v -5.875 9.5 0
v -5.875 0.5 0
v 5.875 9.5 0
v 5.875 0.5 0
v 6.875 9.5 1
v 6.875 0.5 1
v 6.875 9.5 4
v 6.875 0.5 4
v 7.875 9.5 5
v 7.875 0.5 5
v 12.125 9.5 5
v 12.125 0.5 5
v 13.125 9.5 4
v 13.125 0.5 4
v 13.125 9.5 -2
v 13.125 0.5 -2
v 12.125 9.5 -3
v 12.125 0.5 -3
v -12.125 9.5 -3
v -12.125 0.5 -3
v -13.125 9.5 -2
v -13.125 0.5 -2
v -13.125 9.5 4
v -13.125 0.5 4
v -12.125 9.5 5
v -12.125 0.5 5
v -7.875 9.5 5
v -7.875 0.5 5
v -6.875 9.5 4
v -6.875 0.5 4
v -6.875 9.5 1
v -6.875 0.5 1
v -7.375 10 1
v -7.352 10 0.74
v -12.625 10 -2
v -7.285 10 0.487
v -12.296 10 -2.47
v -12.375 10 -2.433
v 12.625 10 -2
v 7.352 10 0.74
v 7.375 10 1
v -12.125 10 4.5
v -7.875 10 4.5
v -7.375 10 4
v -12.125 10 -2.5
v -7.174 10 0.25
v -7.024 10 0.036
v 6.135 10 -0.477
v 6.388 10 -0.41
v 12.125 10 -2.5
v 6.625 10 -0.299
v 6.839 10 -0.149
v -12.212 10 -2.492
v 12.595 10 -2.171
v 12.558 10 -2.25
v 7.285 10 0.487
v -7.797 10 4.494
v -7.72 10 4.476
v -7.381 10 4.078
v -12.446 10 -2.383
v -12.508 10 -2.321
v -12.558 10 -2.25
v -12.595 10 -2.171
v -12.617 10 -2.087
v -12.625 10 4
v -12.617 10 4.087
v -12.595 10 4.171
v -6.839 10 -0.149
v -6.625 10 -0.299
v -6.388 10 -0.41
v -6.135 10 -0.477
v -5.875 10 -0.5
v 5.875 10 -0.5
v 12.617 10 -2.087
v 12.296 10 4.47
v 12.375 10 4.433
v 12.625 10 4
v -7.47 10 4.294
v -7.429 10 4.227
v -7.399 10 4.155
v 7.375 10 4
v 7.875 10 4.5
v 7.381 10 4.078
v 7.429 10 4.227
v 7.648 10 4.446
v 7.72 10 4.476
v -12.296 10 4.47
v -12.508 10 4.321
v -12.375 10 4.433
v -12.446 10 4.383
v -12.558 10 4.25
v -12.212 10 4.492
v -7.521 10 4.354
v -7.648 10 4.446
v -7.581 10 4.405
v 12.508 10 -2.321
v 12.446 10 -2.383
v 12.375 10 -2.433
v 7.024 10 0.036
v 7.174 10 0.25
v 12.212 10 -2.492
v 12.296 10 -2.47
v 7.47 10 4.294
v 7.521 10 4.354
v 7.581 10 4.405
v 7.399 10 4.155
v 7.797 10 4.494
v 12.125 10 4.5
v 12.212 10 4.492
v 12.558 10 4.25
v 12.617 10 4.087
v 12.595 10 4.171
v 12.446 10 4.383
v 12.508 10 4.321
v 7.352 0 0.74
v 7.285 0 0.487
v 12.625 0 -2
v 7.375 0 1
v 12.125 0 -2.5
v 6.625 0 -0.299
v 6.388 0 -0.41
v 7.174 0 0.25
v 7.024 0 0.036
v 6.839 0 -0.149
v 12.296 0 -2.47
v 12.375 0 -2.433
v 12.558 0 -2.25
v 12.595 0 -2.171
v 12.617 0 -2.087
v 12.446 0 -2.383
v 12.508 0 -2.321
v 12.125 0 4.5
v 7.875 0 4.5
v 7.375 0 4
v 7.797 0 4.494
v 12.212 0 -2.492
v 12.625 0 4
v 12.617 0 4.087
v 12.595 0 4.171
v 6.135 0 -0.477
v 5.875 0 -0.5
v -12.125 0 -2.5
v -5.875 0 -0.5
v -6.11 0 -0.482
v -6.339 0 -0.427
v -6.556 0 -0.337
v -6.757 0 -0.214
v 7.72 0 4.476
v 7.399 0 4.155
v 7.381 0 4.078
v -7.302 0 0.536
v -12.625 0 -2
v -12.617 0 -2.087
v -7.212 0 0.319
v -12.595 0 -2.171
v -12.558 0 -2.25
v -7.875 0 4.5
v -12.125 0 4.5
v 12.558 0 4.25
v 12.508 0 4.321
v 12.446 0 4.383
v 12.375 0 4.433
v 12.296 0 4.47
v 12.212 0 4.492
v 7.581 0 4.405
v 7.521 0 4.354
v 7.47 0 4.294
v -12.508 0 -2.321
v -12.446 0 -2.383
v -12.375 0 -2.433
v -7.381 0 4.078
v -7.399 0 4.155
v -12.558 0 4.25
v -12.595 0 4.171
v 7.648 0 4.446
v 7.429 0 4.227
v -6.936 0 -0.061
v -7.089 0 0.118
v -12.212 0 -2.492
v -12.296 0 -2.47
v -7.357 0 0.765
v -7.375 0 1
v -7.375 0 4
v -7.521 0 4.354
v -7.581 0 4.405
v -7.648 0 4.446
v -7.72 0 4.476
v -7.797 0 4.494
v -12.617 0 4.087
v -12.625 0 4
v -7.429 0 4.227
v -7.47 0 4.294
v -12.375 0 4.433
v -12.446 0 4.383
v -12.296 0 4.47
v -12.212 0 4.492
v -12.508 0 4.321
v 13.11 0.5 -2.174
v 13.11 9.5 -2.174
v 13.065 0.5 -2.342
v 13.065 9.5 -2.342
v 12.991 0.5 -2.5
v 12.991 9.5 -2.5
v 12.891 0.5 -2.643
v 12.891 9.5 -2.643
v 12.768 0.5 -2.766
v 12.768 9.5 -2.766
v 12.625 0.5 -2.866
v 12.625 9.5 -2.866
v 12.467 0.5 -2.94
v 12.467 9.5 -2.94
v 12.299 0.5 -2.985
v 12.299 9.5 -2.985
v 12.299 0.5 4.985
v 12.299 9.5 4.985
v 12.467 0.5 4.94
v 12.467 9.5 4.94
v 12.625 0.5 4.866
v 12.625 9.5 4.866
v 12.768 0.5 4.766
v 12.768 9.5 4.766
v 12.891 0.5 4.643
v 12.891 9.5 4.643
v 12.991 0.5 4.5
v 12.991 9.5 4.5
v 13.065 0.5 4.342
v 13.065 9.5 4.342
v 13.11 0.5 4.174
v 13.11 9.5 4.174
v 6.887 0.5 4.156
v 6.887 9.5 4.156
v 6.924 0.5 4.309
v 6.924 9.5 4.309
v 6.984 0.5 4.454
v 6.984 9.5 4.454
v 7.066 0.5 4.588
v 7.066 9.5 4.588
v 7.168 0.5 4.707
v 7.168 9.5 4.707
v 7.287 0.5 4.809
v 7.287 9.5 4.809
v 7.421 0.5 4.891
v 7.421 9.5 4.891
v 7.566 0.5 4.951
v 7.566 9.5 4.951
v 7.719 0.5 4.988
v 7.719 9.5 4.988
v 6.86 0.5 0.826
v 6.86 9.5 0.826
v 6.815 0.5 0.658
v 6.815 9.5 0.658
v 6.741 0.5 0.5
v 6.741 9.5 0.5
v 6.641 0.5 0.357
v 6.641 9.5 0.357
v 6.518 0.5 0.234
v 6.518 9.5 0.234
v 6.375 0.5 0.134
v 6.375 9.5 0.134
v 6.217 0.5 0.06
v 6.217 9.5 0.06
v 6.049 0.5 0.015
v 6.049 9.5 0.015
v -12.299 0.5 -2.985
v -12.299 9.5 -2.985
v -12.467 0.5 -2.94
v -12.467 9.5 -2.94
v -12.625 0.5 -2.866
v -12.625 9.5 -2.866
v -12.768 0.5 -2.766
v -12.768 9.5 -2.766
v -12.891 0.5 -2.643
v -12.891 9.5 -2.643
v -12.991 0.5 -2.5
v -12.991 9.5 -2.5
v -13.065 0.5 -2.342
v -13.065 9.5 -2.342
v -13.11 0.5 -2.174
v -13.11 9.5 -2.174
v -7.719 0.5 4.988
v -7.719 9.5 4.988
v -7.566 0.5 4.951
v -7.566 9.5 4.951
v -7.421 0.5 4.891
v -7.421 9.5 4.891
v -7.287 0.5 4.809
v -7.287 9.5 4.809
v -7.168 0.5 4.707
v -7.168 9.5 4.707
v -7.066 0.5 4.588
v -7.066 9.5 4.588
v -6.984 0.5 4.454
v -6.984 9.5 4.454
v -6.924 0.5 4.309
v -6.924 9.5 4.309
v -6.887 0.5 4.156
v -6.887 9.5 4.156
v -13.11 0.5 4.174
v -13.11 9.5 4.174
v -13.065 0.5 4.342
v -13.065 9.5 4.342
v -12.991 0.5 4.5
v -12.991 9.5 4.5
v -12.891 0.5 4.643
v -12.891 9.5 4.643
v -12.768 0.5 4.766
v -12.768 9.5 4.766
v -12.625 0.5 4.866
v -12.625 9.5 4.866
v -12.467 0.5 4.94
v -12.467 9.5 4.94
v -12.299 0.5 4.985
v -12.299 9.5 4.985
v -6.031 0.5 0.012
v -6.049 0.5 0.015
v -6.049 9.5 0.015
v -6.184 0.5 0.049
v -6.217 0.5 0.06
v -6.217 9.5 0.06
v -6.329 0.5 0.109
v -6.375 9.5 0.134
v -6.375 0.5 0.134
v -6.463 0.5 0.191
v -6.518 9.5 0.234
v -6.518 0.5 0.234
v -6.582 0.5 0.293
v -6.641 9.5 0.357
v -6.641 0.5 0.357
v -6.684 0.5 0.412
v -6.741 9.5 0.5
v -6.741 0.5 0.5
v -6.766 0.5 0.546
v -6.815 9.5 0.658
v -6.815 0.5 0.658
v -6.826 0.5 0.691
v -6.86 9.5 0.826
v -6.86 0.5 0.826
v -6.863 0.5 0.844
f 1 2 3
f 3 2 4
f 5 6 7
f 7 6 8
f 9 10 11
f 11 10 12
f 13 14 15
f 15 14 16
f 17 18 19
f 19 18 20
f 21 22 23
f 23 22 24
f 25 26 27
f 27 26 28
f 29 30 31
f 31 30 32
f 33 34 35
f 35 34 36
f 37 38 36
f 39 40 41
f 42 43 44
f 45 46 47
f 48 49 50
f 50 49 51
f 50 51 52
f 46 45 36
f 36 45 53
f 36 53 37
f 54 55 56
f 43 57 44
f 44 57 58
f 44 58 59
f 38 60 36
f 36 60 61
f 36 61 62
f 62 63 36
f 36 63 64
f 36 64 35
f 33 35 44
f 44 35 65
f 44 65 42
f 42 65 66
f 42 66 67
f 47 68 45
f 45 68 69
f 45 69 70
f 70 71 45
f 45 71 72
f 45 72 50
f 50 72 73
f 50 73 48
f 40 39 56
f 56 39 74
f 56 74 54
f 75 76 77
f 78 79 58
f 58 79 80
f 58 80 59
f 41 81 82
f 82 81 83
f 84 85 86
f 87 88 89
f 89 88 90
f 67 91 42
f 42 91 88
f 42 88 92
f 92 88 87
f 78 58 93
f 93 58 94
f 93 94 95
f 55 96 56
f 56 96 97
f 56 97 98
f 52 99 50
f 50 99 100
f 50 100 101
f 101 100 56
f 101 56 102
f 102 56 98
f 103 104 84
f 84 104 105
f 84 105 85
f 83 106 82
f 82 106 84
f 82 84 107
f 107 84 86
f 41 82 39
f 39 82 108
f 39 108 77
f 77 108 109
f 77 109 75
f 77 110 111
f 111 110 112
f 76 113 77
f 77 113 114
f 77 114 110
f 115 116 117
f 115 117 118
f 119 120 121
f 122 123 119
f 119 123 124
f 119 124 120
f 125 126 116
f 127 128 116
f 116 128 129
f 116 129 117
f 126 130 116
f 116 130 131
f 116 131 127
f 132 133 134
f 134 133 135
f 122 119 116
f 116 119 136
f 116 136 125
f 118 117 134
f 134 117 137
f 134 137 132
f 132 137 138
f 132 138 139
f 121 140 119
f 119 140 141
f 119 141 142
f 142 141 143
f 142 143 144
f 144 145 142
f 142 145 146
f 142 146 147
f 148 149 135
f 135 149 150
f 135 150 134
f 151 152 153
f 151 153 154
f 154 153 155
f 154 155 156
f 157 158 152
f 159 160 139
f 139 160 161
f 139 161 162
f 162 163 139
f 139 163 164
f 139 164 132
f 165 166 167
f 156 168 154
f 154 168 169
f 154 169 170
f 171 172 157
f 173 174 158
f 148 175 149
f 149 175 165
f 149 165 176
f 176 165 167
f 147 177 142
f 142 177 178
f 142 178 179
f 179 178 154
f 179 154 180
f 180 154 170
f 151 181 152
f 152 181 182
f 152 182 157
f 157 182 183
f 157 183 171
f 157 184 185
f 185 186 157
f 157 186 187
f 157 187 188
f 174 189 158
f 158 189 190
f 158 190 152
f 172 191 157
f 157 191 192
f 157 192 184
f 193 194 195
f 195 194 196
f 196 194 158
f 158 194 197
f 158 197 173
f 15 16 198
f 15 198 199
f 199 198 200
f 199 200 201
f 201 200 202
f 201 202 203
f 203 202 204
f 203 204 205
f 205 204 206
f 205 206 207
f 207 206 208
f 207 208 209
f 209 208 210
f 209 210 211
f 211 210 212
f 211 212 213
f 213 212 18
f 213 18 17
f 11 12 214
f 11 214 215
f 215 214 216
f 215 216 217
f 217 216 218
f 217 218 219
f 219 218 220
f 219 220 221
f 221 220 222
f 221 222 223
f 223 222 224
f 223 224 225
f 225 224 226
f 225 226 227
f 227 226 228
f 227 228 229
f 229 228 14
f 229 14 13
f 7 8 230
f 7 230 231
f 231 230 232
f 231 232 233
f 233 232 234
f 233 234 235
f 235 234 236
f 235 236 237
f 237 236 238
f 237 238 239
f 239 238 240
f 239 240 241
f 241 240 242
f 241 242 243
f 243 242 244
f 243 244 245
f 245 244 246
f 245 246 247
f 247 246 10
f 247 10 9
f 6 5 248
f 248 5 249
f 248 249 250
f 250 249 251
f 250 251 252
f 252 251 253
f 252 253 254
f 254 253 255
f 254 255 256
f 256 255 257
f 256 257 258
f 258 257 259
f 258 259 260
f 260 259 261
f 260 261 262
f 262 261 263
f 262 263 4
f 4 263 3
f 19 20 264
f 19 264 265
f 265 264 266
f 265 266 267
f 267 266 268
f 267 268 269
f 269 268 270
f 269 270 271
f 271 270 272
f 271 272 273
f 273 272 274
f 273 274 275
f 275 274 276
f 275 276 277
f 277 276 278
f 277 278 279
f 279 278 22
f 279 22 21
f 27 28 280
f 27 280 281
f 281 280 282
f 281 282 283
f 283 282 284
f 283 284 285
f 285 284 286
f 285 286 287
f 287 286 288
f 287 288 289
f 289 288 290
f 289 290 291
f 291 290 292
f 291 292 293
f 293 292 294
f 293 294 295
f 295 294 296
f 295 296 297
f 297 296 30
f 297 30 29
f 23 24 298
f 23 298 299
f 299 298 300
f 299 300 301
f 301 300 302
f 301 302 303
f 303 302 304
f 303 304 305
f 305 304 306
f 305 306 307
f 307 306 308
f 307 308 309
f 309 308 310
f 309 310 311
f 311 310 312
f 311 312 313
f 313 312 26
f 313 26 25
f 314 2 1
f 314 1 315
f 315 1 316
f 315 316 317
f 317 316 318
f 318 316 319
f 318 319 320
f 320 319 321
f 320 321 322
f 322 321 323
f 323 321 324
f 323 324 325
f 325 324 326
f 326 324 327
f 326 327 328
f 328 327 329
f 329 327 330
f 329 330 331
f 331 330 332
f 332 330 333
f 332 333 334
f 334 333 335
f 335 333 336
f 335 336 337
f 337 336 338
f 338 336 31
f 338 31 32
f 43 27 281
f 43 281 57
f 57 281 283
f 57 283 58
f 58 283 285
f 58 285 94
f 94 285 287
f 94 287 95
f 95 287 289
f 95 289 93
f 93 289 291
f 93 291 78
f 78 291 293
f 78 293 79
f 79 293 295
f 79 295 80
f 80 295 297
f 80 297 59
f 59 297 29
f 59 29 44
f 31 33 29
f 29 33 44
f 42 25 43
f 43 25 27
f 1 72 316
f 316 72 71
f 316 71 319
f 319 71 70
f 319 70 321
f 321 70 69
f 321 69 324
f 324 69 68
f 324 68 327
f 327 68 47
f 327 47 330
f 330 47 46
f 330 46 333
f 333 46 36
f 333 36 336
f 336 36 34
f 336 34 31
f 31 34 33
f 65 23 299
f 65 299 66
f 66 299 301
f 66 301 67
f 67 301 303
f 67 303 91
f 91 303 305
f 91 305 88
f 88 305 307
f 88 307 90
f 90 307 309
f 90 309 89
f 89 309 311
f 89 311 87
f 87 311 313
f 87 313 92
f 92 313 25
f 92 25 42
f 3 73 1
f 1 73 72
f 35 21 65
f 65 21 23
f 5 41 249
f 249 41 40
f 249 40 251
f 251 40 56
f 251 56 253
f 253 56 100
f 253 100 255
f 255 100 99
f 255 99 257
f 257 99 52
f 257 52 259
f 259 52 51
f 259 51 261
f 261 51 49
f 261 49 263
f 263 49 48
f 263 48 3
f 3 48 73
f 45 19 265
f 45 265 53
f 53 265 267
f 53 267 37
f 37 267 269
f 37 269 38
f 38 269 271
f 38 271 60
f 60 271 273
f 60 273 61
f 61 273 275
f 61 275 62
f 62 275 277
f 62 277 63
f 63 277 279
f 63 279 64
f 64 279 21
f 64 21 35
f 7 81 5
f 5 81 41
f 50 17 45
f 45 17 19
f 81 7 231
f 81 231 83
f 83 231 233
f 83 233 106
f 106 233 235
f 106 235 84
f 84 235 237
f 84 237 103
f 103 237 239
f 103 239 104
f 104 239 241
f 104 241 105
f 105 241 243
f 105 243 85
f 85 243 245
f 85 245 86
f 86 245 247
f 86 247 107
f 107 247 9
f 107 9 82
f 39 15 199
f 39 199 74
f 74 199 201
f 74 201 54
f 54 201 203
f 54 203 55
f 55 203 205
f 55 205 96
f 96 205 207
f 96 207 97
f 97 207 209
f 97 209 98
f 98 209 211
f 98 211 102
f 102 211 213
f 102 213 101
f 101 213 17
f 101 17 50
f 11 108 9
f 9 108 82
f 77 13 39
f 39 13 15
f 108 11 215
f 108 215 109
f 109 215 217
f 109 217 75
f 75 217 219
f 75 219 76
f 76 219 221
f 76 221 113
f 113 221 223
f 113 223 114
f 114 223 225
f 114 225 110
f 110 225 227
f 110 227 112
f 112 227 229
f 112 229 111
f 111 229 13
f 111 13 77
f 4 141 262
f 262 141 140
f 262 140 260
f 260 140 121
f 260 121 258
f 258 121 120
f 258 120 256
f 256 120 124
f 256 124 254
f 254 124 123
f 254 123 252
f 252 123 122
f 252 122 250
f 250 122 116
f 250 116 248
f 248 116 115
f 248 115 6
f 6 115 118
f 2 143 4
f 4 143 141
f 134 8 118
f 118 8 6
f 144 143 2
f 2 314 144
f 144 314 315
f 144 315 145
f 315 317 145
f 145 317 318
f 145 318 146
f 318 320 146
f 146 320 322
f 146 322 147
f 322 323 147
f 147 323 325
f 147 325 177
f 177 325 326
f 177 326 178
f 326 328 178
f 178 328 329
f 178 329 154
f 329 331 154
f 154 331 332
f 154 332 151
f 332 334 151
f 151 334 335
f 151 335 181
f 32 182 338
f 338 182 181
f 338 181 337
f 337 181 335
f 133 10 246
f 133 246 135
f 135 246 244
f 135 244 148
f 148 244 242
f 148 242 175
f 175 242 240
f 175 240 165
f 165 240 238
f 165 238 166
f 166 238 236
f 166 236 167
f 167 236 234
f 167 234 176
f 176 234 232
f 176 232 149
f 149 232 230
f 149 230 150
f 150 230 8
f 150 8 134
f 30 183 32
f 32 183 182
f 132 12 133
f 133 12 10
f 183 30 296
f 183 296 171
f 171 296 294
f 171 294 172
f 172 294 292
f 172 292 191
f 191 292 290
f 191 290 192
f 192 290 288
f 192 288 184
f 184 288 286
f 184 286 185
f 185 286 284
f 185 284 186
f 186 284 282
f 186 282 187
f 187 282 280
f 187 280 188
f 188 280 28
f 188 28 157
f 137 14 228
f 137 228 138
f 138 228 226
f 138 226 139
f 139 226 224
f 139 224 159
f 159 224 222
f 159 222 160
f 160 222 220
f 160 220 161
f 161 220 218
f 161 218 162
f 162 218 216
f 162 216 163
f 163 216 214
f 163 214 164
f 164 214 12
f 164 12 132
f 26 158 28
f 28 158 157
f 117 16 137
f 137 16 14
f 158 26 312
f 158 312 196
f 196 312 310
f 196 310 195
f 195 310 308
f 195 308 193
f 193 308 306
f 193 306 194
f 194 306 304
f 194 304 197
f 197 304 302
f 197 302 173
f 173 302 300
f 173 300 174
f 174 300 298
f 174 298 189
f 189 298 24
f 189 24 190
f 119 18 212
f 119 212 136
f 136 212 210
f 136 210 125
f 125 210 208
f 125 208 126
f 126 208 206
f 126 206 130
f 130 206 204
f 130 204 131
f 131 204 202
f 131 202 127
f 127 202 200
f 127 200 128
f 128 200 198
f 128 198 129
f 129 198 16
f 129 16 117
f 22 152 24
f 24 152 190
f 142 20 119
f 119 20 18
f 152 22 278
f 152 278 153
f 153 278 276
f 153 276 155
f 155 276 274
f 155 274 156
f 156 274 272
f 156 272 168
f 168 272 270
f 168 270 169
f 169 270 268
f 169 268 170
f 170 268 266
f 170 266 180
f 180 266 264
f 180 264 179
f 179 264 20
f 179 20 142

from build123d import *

# Parameters (mm, degrees)
BOSS_EXTRUDE1_DEPTH = 10
FILLET1_R           = 1
CHAMFER1_SIZE       = 0.5


with BuildPart() as part:
    # Sketch1 → Boss-Extrude1 (new body)
    with BuildSketch(Plane(origin=(0, 0, 0), x_dir=(1, 0, 0), z_dir=(0, 1, 0))):
        Polygon((-13.125, 0), (-13.125, -5), (-6.875, -5), (-6.875, 0), (6.875, 0), (6.875, -5), (13.125, -5), (13.125, 0), (13.125, 3), (-13.125, 3), align=None)
    extrude(amount=BOSS_EXTRUDE1_DEPTH)

    # Fillet1
    fillet1_edges = [part.edges().sort_by_distance(p)[0] for p in [
        (-6.875, 5, 0),
        (-6.875, 5, 5),
        (-13.125, 5, 5),
        (-13.125, 5, -3),
        (13.125, 5, -3),
        (13.125, 5, 5),
        (6.875, 5, 5),
        (6.875, 5, 0),
    ]]
    fillet(fillet1_edges, radius=FILLET1_R)

    # Chamfer1
    chamfer1_edges = [part.edges().sort_by_distance(p)[0] for p in [
        (0, 0, -3),
        (0, 10, -3),
        (0, 0, 0),
        (-6.875, 0, 2.5),
        (-10, 0, 5),
        (-13.125, 0, 1),
        (13.125, 0, 1),
        (10, 0, 5),
        (6.875, 0, 2.5),
        (-12.832106781, 0, 4.707106781),
        (-7.167893219, 0, 4.707106781),
        (-12.832106781, 0, -2.707106781),
        (7.167893219, 0, 4.707106781),
        (12.832106781, 0, 4.707106781),
        (12.832106781, 0, -2.707106781),
        (13.125, 10, 1),
        (0, 10, 0),
        (6.875, 10, 2.5),
        (10, 10, 5),
        (-13.125, 10, 1),
        (-10, 10, 5),
        (-6.875, 10, 2.5),
        (-12.832106781, 10, 4.707106781),
        (-7.167893219, 10, 4.707106781),
        (-12.832106781, 10, -2.707106781),
        (7.167893219, 10, 4.707106781),
        (12.832106781, 10, 4.707106781),
        (12.832106781, 10, -2.707106781),
        (6.582106781, 0, 0.292893219),
        (6.582106781, 10, 0.292893219),
        (-6.582106781, 0, 0.292893219),
        (-6.582106781, 10, 0.292893219),
    ]]
    chamfer(chamfer1_edges, length=CHAMFER1_SIZE)


solid = part.part
